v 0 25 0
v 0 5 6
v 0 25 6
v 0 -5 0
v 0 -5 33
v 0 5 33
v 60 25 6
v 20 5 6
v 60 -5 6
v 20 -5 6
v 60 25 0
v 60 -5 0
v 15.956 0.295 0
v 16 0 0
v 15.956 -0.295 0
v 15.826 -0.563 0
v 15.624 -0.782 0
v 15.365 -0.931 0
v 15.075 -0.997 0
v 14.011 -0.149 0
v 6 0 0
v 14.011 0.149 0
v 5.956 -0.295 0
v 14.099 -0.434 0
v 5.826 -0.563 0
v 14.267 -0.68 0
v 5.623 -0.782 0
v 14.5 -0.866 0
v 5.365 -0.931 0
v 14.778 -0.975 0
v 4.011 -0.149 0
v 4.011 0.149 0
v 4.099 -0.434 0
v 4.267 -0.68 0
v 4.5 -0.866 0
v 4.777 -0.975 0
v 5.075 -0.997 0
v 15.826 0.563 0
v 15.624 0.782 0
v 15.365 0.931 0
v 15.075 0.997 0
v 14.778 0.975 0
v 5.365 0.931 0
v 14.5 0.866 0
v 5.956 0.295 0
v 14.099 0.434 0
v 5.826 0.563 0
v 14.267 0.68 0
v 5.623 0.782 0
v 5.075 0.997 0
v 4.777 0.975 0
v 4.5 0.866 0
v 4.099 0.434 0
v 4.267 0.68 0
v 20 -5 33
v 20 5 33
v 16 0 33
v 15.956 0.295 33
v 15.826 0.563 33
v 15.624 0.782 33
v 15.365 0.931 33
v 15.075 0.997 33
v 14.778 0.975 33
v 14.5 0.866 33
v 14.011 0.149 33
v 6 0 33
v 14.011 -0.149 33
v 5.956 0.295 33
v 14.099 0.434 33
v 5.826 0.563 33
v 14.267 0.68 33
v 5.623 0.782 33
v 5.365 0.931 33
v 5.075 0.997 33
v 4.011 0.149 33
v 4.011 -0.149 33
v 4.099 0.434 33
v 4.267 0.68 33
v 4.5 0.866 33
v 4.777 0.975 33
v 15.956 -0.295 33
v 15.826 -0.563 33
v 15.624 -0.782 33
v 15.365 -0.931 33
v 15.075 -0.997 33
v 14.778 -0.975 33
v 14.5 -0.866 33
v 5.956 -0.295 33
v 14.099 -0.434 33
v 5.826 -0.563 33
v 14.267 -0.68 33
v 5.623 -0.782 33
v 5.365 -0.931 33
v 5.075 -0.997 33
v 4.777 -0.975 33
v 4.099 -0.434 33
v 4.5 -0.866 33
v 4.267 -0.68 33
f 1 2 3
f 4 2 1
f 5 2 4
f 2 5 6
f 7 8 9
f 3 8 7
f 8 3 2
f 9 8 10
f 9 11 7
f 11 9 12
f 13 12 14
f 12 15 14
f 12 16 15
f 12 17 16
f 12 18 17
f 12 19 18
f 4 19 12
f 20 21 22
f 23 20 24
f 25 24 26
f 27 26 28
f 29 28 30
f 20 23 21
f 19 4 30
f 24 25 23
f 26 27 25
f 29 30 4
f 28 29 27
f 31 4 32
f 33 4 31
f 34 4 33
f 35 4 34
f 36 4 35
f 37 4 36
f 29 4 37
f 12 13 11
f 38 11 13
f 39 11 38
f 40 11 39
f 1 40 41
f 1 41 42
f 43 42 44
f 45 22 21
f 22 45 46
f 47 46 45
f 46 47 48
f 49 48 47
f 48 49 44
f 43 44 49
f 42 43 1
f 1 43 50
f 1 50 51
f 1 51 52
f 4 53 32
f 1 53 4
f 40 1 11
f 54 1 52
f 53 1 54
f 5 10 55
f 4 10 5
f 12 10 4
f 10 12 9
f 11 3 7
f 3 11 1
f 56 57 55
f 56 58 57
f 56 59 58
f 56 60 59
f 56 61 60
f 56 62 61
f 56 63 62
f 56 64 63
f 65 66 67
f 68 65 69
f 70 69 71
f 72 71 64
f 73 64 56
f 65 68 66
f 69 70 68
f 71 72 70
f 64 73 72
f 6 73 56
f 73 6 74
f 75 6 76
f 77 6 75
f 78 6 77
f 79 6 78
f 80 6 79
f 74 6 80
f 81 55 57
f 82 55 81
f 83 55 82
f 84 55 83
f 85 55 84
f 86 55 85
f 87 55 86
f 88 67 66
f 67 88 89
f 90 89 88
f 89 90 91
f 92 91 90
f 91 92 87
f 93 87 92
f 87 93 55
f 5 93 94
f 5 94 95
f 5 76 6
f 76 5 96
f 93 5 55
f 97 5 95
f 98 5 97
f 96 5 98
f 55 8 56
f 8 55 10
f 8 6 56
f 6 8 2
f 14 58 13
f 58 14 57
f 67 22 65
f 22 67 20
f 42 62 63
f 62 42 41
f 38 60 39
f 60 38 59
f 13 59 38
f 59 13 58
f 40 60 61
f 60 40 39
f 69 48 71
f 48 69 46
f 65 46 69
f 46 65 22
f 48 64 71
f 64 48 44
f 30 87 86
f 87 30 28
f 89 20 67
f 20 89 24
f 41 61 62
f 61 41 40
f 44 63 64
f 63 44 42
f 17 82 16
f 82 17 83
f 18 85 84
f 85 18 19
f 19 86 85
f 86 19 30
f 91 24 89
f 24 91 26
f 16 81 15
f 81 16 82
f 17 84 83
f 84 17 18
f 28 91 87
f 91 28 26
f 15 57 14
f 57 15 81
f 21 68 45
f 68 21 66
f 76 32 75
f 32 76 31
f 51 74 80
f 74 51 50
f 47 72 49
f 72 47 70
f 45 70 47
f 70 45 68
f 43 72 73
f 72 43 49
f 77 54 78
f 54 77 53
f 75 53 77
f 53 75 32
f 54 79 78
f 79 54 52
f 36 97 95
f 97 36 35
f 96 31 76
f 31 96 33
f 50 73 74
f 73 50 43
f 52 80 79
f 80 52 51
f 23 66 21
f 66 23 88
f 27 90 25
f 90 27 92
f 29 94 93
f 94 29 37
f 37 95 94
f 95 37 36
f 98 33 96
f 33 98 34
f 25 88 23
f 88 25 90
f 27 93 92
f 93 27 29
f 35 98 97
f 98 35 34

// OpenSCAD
// Switch Mount, to mount the switch on the safe
// The switch used is a SPDT momentary limit switch with a roller
// M2 bolts are used to fasten the switch to this block

mountW = 30; // width of part coming in front edge, and the rest of the design
inFromEdge = 50; // distance in from edge of safe to the middle of the switch
inFromEdgeT = 6; // thickness of part that comes in from the edge

boltD = 2; // no nut used, this will be tight though
boltSpace = 10; // distance between centers of bolts

switchH = 33; // distance from safe to bottom of switch
switchW = 20; // width of switch
switchL = 10; // length of switch (parallel to leads)

bumpYPos = (mountW - switchL/2) * 0.55; // position of highest part of bump underneath this thing
bumpH = 4; // height of the bump underneath
enableBump = false;

$fa = 0.1;
$fs = 0.3;

MakeSwitchMount();

module MakeSwitchMount() {
    difference() {
        union() {
            // Make part coming in from the side
            translate([0, -switchL/2, 0]) cube([inFromEdge+switchW/2, mountW, inFromEdgeT]);
            
            
            // Make part to mount switch on
            translate([0, -switchL/2, 0]) cube([switchW, switchL, switchH]);
            
        }
        
        // Remove switch holes
        for(i = [2, -2]) translate([switchW/2 + boltSpace/i, 0, 0]) {
            cylinder(d=boltD, h=1000, center=true);
        }
        
        // Remove the goofy bump
        if (enableBump) hull() { // looking in the positive x direction...
            translate([0, -switchL/2, 0]) rotate([0, 90, 0]) cylinder(d=0.1, h=1000); // BR corner
            translate([0, bumpYPos, bumpH]) rotate([0, 90, 0]) cylinder(d=0.1, h=1000); // top
            translate([0, mountW-switchL/2, 0]) rotate([0, 90, 0]) cylinder(d=0.1, h=1000); // BL
        }
        
    }
}
